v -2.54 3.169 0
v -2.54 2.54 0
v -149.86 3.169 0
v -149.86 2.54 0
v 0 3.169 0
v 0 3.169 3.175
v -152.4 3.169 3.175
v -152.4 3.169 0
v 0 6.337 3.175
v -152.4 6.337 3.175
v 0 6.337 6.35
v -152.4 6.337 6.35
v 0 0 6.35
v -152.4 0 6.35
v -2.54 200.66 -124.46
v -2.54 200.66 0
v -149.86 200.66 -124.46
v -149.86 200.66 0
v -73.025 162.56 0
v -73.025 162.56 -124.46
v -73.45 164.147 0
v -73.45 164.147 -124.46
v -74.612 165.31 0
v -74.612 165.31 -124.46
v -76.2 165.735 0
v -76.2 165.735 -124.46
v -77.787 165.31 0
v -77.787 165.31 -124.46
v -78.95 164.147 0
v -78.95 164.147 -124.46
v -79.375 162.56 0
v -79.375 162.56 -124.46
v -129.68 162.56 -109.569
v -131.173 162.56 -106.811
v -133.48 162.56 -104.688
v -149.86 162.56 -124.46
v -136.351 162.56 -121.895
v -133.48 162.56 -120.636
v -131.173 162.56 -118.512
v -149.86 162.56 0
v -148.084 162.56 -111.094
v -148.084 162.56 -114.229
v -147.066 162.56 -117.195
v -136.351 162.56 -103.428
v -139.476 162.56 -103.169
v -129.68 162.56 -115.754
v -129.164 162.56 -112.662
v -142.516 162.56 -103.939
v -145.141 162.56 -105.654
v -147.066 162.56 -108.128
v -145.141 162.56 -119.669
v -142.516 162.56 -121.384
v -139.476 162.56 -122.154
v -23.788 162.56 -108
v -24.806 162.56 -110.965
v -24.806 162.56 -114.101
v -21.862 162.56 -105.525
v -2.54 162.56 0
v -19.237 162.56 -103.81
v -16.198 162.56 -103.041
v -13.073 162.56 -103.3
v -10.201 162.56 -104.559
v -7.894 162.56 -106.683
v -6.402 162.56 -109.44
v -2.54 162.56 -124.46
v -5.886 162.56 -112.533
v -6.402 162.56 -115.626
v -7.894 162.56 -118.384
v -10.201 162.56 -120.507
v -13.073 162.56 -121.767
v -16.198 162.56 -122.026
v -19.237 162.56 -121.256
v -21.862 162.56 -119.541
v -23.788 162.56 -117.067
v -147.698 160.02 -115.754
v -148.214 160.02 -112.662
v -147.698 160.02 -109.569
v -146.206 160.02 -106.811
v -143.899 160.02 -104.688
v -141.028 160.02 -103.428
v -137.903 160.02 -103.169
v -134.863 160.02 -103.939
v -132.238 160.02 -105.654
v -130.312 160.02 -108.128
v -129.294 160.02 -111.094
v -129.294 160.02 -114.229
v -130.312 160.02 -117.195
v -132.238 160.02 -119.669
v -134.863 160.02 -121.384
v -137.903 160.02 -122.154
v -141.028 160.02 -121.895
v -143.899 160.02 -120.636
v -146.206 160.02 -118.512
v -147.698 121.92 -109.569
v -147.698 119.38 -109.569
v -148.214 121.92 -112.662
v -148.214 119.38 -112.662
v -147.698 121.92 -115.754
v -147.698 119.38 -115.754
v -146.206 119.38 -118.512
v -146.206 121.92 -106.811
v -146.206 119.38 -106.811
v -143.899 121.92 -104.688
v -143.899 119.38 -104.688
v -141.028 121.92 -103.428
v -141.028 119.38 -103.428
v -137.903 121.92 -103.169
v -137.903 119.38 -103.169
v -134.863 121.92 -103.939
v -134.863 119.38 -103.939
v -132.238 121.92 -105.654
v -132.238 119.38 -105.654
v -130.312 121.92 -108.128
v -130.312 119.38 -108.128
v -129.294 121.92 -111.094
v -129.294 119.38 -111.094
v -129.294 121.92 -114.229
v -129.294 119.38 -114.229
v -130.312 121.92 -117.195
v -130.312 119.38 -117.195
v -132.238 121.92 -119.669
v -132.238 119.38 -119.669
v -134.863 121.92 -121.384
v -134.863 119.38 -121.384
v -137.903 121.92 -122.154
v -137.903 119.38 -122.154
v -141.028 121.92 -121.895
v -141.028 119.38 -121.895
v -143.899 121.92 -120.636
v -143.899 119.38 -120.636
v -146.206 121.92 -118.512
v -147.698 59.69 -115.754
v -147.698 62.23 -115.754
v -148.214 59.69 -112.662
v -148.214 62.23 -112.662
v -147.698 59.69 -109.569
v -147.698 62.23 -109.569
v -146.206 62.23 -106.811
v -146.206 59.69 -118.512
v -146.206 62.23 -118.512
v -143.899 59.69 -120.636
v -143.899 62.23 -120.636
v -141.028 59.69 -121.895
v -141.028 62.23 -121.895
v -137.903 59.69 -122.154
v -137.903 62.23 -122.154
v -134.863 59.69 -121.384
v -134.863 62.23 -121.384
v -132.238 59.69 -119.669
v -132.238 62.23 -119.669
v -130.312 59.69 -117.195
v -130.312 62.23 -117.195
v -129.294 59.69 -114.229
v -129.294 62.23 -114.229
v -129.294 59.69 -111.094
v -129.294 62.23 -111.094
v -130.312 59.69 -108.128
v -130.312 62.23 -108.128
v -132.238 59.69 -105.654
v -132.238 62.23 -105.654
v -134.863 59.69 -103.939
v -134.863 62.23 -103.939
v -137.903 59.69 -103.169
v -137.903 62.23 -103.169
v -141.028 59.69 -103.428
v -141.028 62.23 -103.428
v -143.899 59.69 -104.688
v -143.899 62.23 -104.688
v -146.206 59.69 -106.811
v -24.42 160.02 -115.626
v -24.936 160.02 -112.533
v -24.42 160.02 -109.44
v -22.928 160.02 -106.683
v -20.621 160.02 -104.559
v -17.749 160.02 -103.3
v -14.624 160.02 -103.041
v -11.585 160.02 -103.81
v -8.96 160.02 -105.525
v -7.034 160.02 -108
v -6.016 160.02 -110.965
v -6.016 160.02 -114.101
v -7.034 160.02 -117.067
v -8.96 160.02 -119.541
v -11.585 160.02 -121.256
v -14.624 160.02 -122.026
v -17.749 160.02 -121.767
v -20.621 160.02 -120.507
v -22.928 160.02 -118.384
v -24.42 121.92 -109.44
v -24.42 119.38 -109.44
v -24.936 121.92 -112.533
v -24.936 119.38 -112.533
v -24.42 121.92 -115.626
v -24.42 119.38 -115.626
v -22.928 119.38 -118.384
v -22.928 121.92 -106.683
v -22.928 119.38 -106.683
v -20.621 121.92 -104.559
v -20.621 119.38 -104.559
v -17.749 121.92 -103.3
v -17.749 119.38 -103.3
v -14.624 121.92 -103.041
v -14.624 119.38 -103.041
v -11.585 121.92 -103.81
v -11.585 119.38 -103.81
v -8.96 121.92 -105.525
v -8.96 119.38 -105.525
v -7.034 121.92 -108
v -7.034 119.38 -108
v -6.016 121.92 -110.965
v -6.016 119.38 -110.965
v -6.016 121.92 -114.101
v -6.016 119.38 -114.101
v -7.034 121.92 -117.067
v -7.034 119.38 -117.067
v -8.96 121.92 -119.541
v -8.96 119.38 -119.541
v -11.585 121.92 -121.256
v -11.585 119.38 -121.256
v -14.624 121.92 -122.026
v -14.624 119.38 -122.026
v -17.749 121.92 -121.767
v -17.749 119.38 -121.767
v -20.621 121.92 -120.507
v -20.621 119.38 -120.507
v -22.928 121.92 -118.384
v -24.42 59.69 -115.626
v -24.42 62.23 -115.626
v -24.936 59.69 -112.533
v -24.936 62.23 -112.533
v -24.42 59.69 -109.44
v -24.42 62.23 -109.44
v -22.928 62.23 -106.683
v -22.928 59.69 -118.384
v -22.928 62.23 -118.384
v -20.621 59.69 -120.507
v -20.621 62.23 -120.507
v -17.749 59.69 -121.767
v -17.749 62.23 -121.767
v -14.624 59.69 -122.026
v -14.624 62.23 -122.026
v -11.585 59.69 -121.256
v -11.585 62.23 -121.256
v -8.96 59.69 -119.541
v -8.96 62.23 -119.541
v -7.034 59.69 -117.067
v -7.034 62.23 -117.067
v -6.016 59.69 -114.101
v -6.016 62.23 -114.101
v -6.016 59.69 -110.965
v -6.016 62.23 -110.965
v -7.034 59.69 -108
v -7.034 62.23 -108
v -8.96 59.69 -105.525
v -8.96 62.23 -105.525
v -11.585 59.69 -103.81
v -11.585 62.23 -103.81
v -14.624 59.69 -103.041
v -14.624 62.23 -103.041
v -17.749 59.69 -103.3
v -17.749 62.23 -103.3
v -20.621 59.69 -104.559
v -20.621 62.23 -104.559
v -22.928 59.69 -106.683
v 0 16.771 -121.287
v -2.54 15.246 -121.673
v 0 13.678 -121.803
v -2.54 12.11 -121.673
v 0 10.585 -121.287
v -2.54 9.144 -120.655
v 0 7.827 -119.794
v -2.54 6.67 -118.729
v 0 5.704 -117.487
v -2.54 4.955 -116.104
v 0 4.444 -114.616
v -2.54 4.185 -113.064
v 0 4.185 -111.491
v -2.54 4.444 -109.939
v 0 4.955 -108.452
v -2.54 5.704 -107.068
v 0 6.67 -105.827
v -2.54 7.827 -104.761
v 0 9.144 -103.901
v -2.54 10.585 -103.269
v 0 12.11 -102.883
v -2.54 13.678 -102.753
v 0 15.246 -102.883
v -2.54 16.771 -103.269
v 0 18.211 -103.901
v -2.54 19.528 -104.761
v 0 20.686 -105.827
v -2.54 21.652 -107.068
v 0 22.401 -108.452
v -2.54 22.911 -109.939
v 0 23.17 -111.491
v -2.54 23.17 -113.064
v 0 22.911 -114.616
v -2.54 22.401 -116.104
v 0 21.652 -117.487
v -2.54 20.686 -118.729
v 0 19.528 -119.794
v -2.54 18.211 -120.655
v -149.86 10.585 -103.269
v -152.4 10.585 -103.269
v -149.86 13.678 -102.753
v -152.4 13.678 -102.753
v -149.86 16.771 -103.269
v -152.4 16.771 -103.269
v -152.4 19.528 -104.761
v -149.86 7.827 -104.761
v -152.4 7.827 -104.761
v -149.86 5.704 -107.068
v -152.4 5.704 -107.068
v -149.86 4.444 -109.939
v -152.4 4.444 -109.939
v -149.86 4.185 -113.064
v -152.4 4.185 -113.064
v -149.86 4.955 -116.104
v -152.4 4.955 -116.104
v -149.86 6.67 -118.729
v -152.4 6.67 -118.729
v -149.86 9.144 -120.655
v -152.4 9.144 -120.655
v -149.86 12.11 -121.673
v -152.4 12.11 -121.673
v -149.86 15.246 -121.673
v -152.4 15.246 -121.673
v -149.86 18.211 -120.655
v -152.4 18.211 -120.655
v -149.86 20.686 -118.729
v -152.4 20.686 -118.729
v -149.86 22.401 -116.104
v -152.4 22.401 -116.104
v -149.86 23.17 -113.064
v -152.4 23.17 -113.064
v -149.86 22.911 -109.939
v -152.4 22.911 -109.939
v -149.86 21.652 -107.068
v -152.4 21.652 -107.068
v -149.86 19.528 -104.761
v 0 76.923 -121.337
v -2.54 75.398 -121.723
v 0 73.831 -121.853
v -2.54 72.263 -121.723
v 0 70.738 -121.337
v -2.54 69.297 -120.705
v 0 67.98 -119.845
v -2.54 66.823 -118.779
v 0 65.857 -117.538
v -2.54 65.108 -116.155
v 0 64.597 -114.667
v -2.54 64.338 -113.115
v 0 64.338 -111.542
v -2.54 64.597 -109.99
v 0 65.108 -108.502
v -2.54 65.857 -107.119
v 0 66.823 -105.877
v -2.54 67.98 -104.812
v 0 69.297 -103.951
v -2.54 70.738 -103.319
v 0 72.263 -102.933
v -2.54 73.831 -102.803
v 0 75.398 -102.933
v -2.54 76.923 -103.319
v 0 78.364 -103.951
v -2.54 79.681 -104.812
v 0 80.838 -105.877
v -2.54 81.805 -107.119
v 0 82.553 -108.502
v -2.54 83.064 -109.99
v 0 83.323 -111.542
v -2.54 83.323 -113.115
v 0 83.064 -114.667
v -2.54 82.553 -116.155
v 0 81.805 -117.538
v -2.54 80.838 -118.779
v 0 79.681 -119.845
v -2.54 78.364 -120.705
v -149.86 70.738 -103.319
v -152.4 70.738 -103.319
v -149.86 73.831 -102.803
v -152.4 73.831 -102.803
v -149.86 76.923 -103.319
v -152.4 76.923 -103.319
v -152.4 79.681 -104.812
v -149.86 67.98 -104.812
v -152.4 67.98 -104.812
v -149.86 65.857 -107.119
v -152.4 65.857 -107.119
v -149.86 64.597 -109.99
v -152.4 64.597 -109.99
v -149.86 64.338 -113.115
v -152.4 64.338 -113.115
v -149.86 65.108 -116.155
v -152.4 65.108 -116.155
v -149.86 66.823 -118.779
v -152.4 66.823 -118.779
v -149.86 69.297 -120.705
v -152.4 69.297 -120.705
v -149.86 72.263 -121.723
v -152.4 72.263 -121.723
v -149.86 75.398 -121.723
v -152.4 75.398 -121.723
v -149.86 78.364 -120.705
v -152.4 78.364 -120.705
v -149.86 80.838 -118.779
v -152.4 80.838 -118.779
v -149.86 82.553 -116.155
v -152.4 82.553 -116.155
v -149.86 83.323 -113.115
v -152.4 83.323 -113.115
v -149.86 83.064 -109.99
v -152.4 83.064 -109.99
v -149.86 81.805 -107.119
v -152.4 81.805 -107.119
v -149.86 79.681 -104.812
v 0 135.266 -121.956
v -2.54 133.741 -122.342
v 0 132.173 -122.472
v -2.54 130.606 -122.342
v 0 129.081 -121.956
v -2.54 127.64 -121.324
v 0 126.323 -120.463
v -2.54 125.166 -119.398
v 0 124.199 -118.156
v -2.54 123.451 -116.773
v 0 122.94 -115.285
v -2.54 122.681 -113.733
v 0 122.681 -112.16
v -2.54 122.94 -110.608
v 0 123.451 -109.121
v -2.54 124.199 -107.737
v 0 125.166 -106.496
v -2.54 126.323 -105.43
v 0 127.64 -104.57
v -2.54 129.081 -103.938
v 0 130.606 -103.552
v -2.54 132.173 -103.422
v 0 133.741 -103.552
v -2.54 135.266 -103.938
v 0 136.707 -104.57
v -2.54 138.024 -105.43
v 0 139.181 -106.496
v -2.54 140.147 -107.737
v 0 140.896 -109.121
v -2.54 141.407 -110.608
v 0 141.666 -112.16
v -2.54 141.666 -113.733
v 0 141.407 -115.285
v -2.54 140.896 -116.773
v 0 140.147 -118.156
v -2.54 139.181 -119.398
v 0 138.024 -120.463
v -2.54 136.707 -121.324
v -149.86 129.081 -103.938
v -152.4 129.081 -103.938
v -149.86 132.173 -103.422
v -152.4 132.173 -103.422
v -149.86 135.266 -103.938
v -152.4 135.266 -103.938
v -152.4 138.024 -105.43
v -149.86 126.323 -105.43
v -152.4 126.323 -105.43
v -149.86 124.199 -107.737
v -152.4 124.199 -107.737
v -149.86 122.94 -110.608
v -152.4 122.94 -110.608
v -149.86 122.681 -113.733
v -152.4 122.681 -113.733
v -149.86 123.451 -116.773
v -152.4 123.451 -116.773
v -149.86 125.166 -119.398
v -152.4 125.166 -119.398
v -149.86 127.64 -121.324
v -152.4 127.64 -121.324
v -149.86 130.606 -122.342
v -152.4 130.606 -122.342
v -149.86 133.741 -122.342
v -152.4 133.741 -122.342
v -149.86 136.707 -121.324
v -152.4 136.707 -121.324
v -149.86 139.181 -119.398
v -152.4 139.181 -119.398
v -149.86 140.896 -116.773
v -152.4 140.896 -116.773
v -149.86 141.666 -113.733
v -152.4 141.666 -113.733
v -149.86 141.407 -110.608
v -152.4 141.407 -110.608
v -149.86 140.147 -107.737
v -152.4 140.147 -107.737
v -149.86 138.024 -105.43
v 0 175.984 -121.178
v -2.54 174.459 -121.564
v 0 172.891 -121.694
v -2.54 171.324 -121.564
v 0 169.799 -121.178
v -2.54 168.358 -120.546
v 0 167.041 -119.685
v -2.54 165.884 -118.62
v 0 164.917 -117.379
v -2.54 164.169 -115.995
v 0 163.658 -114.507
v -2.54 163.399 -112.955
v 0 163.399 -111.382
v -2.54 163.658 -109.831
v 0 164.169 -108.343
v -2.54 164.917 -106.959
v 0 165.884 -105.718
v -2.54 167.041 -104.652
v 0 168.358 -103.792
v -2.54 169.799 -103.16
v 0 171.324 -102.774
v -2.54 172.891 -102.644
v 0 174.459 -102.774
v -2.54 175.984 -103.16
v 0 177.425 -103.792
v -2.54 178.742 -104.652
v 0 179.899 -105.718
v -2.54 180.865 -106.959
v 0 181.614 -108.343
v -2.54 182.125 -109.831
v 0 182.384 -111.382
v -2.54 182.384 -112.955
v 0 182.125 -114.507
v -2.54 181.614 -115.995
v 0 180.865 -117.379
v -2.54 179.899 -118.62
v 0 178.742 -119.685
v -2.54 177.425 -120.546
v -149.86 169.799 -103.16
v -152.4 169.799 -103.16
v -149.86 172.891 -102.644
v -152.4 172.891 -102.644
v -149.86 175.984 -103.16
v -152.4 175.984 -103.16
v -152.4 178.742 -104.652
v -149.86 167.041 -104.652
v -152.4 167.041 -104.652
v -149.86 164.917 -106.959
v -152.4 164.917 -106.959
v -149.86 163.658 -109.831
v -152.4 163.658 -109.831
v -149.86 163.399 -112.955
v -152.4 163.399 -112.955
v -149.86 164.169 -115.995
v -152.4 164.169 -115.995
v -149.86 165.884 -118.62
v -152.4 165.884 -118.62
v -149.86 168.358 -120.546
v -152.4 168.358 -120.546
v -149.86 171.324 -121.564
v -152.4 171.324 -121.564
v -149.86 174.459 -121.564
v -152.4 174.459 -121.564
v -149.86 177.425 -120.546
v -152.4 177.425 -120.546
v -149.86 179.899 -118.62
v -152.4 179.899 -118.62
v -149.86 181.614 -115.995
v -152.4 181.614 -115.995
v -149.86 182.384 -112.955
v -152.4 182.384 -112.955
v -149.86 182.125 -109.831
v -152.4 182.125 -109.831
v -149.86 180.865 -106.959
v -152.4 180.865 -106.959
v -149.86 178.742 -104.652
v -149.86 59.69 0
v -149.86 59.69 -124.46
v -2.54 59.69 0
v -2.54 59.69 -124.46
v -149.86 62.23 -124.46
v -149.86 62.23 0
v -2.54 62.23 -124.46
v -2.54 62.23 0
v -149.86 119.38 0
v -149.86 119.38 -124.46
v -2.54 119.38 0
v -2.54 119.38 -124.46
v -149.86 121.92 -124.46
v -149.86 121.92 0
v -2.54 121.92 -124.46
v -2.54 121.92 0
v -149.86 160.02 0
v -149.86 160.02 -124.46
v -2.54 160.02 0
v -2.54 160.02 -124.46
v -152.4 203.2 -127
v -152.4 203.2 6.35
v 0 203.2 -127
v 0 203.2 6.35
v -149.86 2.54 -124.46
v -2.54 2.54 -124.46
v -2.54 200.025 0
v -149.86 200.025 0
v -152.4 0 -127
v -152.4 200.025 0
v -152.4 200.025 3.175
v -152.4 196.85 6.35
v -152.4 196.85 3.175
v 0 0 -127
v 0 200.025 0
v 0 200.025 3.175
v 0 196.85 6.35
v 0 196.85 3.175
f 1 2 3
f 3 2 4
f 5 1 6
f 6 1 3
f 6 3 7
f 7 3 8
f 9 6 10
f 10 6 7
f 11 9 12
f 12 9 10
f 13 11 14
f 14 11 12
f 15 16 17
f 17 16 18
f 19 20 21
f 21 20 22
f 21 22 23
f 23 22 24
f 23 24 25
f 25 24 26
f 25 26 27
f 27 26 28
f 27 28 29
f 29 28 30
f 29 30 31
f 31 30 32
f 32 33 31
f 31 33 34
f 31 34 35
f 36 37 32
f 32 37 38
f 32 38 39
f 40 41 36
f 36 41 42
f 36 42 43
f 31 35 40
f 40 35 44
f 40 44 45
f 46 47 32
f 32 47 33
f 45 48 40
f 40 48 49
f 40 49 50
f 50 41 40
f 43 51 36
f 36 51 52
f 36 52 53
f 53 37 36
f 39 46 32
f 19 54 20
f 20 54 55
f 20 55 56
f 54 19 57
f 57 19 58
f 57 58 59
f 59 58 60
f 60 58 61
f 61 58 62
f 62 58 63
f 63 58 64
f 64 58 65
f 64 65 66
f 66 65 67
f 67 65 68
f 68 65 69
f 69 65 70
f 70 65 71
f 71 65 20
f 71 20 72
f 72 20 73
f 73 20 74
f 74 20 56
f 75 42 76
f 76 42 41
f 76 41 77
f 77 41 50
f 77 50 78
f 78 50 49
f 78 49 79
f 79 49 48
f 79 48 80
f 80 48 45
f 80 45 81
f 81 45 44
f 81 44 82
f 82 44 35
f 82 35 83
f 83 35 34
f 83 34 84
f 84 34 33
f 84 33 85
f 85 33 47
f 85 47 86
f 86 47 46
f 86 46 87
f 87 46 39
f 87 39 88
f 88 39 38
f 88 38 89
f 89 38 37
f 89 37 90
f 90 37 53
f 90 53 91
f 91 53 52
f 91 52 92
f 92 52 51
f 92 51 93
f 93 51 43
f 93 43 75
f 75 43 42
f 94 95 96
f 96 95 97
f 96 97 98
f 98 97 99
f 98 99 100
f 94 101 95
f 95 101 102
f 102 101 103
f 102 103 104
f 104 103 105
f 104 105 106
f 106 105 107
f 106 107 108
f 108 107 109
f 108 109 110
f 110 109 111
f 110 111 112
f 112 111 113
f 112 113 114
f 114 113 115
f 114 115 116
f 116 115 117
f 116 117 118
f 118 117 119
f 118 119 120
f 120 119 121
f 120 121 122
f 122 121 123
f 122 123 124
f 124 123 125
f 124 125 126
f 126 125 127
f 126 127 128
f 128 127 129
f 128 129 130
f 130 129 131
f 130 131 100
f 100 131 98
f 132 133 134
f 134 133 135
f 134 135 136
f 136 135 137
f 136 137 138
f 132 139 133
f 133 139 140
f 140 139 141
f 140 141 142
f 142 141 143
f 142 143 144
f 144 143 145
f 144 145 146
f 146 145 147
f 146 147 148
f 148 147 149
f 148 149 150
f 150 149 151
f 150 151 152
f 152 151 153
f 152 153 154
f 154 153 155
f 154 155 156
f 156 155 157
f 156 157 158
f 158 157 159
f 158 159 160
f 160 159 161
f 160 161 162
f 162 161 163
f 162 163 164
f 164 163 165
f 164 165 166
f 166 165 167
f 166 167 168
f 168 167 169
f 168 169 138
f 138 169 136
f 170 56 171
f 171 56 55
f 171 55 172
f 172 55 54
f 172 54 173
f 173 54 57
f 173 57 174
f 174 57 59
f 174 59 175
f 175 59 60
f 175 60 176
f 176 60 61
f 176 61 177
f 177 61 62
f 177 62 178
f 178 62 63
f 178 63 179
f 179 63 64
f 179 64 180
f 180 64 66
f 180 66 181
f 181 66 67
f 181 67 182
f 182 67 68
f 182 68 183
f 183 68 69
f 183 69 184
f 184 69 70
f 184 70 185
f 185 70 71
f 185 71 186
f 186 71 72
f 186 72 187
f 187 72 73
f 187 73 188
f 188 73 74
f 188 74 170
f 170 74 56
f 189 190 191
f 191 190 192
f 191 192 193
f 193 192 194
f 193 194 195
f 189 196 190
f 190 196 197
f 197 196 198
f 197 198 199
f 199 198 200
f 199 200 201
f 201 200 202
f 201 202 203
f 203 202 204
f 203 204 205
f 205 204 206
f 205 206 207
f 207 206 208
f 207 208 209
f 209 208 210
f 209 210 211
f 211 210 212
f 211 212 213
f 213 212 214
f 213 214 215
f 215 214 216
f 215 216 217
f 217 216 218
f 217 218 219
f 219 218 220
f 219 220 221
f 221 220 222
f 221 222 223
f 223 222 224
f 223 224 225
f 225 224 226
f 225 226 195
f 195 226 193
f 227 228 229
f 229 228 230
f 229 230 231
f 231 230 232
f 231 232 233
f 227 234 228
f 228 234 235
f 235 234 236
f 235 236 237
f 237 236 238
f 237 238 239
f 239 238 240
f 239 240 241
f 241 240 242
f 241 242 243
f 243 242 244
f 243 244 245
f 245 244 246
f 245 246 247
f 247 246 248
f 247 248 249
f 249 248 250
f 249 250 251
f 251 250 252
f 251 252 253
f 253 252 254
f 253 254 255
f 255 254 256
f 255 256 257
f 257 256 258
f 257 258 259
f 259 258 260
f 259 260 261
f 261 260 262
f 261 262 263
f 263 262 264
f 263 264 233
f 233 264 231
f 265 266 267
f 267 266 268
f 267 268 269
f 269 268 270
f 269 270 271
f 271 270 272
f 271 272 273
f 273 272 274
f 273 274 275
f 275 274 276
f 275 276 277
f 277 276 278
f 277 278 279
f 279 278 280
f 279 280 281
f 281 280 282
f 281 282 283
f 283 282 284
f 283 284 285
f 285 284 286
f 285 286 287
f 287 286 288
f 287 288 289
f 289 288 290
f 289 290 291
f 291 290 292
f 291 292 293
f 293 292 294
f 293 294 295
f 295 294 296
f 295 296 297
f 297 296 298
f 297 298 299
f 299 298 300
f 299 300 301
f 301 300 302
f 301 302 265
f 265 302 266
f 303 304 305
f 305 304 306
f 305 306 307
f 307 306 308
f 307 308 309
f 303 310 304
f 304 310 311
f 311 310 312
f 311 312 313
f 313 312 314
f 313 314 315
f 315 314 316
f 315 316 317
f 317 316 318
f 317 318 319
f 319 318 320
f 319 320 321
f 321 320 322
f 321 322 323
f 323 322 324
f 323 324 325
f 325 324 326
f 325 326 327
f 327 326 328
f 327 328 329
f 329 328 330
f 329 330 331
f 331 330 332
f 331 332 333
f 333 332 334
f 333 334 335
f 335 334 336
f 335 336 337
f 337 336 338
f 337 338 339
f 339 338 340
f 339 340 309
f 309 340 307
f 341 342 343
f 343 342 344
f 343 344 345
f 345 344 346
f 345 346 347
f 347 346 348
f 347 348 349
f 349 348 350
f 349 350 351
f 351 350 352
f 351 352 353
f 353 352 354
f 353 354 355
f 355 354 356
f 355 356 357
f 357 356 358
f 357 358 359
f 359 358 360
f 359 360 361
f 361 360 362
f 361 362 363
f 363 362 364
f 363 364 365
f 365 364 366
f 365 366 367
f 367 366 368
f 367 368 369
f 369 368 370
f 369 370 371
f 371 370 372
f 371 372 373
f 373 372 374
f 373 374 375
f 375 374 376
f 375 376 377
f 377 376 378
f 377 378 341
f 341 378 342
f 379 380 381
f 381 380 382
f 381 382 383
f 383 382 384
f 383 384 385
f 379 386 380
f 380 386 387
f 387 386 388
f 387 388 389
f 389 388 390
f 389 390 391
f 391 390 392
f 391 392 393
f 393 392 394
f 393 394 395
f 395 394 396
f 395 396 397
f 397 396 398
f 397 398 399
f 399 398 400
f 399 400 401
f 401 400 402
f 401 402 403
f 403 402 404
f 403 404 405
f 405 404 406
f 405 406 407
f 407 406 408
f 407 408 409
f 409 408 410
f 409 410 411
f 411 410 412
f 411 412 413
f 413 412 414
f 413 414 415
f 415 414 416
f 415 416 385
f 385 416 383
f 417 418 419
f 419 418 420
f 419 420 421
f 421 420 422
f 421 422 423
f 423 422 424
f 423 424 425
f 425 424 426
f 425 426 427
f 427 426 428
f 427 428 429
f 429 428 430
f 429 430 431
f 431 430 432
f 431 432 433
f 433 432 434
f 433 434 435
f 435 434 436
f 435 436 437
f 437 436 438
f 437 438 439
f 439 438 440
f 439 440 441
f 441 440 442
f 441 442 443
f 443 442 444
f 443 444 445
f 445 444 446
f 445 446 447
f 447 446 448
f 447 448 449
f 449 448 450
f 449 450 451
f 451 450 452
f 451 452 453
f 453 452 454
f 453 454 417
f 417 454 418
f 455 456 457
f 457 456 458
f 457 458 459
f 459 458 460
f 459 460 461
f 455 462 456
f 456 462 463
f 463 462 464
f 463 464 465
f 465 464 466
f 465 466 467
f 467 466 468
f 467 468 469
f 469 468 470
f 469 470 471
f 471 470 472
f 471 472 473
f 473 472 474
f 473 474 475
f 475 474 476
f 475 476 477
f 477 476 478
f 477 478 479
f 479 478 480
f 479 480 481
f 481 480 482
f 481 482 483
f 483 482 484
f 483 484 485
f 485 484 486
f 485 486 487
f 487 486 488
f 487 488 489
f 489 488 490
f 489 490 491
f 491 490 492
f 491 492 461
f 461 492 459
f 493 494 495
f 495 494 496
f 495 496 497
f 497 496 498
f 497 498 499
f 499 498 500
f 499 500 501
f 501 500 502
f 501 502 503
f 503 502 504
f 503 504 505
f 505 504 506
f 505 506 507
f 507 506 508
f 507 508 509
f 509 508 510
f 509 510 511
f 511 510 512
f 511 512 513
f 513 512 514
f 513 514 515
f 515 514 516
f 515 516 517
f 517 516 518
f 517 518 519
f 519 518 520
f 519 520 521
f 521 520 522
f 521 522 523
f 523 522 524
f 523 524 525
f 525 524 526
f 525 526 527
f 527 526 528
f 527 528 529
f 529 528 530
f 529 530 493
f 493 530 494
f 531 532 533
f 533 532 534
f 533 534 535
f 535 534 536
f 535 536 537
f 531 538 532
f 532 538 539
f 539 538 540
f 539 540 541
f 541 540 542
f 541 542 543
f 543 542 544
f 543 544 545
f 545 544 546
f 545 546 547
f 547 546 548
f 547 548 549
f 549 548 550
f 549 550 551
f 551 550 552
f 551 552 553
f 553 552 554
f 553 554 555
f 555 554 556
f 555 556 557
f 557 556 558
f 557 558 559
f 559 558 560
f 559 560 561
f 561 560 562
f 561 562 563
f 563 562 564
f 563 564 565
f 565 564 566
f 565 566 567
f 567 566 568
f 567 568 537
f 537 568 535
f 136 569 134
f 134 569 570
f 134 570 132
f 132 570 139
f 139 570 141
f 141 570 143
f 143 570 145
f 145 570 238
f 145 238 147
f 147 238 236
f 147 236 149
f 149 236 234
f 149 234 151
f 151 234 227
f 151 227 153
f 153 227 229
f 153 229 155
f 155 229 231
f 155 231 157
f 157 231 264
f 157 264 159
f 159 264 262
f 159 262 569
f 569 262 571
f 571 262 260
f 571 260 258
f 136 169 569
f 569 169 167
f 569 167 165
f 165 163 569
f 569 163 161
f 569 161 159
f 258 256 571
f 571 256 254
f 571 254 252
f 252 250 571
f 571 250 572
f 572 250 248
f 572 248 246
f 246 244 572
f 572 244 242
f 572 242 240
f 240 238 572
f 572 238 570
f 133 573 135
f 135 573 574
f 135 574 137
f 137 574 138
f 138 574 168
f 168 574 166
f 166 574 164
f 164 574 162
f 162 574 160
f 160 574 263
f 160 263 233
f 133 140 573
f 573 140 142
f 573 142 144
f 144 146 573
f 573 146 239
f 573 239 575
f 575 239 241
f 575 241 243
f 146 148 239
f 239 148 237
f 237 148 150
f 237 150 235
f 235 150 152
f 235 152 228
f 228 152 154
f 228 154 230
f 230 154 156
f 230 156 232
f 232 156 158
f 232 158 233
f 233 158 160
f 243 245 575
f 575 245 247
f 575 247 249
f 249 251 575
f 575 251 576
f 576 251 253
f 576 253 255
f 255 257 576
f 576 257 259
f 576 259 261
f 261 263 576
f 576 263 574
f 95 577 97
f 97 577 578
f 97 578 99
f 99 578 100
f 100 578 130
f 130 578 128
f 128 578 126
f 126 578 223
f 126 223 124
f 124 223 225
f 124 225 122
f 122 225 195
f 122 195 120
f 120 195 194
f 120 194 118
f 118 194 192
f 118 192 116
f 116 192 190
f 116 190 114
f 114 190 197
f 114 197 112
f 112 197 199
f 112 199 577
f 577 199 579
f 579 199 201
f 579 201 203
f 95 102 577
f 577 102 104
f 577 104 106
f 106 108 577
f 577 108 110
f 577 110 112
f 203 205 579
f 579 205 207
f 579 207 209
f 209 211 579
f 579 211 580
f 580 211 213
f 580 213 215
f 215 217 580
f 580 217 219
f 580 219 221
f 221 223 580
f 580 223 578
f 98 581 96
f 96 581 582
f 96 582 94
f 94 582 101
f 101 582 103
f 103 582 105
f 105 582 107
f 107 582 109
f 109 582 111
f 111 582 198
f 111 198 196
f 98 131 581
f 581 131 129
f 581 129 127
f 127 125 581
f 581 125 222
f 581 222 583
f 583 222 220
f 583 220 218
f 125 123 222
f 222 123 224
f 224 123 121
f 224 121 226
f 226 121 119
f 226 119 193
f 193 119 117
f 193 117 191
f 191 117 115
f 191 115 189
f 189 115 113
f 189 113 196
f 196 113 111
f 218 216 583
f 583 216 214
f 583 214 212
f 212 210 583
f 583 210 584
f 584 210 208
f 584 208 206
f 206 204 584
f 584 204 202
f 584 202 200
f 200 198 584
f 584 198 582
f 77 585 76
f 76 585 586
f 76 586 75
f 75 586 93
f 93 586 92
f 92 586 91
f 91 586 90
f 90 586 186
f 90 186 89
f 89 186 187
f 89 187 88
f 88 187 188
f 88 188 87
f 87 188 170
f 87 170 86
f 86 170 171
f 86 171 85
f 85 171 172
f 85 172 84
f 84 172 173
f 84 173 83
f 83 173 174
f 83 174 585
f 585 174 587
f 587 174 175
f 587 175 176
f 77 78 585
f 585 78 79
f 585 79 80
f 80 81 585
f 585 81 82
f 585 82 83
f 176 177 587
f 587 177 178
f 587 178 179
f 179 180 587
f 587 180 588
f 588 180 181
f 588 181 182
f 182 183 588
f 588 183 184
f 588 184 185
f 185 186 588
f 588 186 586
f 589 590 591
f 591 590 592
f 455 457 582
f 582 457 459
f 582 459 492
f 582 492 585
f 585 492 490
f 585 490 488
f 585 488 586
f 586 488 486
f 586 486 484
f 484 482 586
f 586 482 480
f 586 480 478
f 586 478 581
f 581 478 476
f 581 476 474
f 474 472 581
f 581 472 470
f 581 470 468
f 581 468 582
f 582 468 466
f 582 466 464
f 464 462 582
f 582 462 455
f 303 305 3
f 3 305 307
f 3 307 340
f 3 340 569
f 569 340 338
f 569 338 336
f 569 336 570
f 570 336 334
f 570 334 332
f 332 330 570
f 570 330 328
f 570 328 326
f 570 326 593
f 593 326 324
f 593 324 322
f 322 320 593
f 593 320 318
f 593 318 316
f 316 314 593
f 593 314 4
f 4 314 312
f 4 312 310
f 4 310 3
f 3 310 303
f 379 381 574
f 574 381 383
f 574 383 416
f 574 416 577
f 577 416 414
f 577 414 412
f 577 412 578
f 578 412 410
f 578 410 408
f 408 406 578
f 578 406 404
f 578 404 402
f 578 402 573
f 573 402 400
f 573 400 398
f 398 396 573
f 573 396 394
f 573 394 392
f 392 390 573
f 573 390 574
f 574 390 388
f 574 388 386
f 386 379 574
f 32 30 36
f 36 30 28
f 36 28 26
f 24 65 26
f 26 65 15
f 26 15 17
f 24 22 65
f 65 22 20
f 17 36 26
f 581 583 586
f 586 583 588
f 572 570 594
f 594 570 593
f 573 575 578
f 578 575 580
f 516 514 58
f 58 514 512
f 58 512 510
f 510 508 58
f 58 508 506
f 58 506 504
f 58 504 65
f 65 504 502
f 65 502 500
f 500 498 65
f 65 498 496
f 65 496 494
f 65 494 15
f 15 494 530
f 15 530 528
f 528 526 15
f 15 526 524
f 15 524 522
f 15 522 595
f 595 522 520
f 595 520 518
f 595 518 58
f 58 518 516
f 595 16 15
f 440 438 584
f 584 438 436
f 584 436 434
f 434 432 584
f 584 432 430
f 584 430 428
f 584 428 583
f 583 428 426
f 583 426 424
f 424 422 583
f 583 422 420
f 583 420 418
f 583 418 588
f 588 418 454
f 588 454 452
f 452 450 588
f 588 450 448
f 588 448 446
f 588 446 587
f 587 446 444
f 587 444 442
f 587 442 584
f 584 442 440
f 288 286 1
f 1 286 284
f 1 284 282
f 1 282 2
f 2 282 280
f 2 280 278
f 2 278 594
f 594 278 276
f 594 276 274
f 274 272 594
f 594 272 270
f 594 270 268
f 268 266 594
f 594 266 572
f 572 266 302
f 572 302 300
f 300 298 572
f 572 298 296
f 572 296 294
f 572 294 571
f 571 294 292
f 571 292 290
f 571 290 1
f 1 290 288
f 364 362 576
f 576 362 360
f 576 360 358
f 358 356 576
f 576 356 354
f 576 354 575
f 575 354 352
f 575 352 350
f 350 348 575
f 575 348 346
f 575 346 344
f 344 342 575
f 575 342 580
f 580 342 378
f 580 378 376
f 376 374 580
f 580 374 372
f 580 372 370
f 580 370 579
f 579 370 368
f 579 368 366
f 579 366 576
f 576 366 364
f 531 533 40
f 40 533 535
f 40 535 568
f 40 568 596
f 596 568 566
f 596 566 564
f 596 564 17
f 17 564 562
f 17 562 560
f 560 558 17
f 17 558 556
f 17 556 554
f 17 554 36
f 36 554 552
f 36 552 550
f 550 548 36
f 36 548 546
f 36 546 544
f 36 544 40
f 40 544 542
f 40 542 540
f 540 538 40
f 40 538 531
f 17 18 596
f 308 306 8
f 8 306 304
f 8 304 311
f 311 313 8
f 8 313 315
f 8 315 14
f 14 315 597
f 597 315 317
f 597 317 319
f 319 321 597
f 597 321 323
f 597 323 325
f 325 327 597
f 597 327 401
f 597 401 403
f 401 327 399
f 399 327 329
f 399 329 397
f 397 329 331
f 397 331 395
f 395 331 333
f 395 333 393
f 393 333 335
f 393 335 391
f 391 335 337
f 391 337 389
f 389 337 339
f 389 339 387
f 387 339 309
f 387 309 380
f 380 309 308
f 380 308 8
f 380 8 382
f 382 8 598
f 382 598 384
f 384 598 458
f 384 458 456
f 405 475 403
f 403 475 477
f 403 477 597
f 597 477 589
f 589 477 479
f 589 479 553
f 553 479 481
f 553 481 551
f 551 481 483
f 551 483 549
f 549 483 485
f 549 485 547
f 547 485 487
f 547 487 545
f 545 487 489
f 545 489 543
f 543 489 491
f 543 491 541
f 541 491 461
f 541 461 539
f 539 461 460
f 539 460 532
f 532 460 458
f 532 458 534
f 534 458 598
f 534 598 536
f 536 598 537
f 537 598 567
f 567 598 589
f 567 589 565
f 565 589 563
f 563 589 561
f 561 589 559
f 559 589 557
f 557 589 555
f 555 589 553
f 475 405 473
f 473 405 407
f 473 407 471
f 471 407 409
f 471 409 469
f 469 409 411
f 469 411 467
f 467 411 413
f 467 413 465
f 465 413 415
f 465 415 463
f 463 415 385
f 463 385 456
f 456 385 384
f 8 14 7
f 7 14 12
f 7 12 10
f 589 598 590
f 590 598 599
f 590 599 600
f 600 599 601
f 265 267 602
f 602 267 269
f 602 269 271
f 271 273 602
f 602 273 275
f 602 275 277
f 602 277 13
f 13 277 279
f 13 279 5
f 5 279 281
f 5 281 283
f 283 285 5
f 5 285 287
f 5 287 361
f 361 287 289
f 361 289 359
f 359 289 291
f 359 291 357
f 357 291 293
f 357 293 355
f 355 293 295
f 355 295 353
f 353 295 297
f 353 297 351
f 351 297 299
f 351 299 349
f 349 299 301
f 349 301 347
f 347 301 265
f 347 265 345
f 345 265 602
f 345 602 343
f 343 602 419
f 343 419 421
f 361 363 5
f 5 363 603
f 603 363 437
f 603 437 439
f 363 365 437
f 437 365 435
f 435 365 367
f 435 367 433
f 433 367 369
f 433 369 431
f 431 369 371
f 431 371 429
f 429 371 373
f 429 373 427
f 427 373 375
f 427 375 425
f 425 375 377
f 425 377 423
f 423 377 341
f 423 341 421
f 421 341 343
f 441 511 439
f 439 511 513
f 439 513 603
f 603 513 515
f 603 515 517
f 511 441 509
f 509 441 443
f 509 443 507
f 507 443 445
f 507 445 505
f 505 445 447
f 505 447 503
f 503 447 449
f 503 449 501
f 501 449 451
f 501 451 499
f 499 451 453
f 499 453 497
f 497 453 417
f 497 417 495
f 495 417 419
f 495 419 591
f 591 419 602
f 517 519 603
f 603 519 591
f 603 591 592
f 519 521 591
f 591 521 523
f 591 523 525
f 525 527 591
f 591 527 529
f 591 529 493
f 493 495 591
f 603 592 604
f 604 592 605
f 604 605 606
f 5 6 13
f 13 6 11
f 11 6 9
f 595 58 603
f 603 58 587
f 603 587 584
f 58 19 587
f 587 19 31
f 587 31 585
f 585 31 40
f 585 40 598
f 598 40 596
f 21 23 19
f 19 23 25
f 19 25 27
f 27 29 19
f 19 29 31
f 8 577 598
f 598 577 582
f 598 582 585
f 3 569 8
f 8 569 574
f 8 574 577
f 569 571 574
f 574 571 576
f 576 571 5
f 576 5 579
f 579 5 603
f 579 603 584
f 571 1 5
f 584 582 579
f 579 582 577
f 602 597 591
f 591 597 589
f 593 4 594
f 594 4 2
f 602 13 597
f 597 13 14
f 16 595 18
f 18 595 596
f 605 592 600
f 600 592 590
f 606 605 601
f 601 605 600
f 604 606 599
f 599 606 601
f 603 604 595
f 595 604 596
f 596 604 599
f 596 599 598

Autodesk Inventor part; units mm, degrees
ref_plane "YZ Plane" through (0, 0, 0) normal (1, 0, 0) x (0, 1, 0)
ref_plane "XZ Plane" through (0, 0, 0) normal (0, 1, 0) x (-1, 0, 0)
ref_plane "XY Plane" through (0, 0, 0) normal (0, 0, 1) x (1, 0, 0)
sketch "Sketch2" plane through (0, 0, 0) normal (0, 1, 0) x (-1, 0, 0)
  line L0 (0, 0) -> (152.4, 0)
  line L1 (152.4, 0) -> (152.4, -127)
  line L2 (152.4, -127) -> (0, -127)
  line L3 (0, -127) -> (0, 0)
  dimension "d2" = 152.4
  dimension "d3" = 127
extrude "Extrusion1" add sketch "Sketch2" along normal blind 2.54
sketch "Sketch3" plane through (0, 0, 0) normal (1, 0, 0) x (0, 0, -1)
  line L0 (127, 2.54) -> (0, 2.54) projected
  line L1 (0, 2.54) -> (127, 2.54)
  line L2 (127, 2.54) -> (127, 203.2)
  line L3 (127, 203.2) -> (0, 203.2)
  line L4 (0, 203.2) -> (0, 2.54)
  point P0 (0, 0)
  dimension "d6" = 127
  dimension "d7" = 200.66
extrude "Extrusion2" add sketch "Sketch3" against normal blind 2.54
sketch "Sketch4" plane through (-152.4, 0, -127) normal (-1, 0, 0) x (0, 0, 1)
  line L0 (0, 2.54) -> (127, 2.54) projected
  line L1 (127, 0) -> (127, 203.2) projected
  line L2 (0, 2.54) -> (127, 2.54)
  line L3 (127, 2.54) -> (127, 203.2)
  line L4 (127, 203.2) -> (0, 203.2)
  line L5 (0, 203.2) -> (0, 2.54)
extrude "Extrusion3" add sketch "Sketch4" against normal blind 2.54
sketch "Sketch5" plane through (0, 0, -127) normal (0, 0, -1) x (-1, 0, 0)
  line L0 (2.54, 2.54) -> (2.54, 203.2) projected
  line L1 (152.4, 203.2) -> (149.86, 203.2) projected
  line L2 (2.54, 2.54) -> (149.86, 2.54)
  line L3 (149.86, 2.54) -> (149.86, 203.2)
  line L4 (149.86, 203.2) -> (2.54, 203.2)
  line L5 (2.54, 203.2) -> (2.54, 2.54)
  point P0 (0, 0)
extrude "Extrusion4" add sketch "Sketch5" against normal blind 2.54
sketch "Sketch6" plane through (-152.4, 203.2, 0) normal (0, 1, 0) x (1, 0, 0)
  line L0 (0, 0) -> (2.54, 0) projected
  line L1 (149.86, 124.46) -> (2.54, 124.46) projected
  line L2 (2.54, 0) -> (149.86, 0)
  line L3 (149.86, 0) -> (149.86, 124.46)
  line L4 (149.86, 124.46) -> (2.54, 124.46)
  line L5 (2.54, 124.46) -> (2.54, 0)
  point P0 (152.4, 0)
extrude "Extrusion5" add sketch "Sketch6" against normal blind 2.54
sketch "Sketch7" plane through (-152.4, 0, 0) normal (0, 0, 1) x (1, 0, 0)
  line L0 (2.54, 200.66) -> (2.54, 2.54) projected
  line L1 (149.86, 200.66) -> (149.86, 2.54) projected
  line L2 (2.54, 59.69) -> (149.86, 59.69)
  line L3 (149.86, 59.69) -> (149.86, 62.23)
  line L4 (149.86, 62.23) -> (2.54, 62.23)
  line L5 (2.54, 62.23) -> (2.54, 59.69)
  line L6 (2.54, 119.38) -> (149.86, 119.38)
  line L7 (149.86, 119.38) -> (149.86, 121.92)
  line L8 (149.86, 121.92) -> (2.54, 121.92)
  line L9 (2.54, 121.92) -> (2.54, 119.38)
  line L10 (2.54, 160.02) -> (149.86, 160.02)
  line L11 (149.86, 160.02) -> (149.86, 162.56)
  line L12 (149.86, 162.56) -> (2.54, 162.56)
  line L13 (2.54, 162.56) -> (2.54, 160.02)
  dimension "d21" = 2.54
  dimension "d22" = 2.54
  dimension "d23" = 2.54
extrude "Extrusion6" add sketch "Sketch7" against normal blind 126.365 contours L12 L1 L10 L0 | L8 L1 L6 L0 | L4 L1 L2 L0
sketch "Sketch8" plane through (0, 0, 0) normal (1, 0, 0) x (0, 0, -1)
  point P0 (0, 0)
  point P1 (112.1689, 172.8914)
  point P2 (112.9467, 132.1734)
  point P3 (112.3284, 73.8307)
  point P4 (112.2777, 13.6778)
hole "Hole1" at (0, 172.8914, -112.1689) at (0, 132.1734, -112.9467) at (0, 73.8307, -112.3284) at (0, 13.6778, -112.2777) direction (-1, 0, 0) diameter 19.05 depth 201.6125 tip angle 126
sketch "Sketch9" plane through (-149.86, 162.56, 0) normal (0, 1, 0) x (1, 0, 0)
  point P0 (149.86, 0)
  point P1 (11.1706, 112.6616)
  point P2 (134.449, 112.5332)
hole "Hole2" at (-15.411, 162.56, -112.5332) at (-138.6894, 162.56, -112.6616) direction (0, -1, 0) diameter 19.05 depth 149.225 tip angle 126
sketch "Sketch10" plane through (-152.4, 0, 0) normal (0, 0, 1) x (1, 0, 0)
  line L0 (149.86, 162.56) -> (2.54, 162.56) projected
  arc A0 (79.375, 162.56) -> (73.025, 162.56) centre (76.2, 162.56) ccw
  point P0 (152.4, 0)
  dimension "d40" = 6.35
extrude "Extrusion7" add sketch "Sketch10" against normal blind 126.365
sketch "Sketch11" plane through (0, 0, 0) normal (1, 0, 0) x (0, 0, -1)
  line L0 (0, 0) -> (127, 0) projected
  line L1 (0, 0) -> (-6.35, 0)
  line L2 (-6.35, 0) -> (-6.35, 6.3374)
  line L3 (-6.35, 6.3374) -> (-3.175, 6.3374)
  line L4 (0, 6.3374) -> (0, 0)
  line L5 (0, 6.3374) -> (-3.175, 6.3374)
  line L6 (-3.175, 6.3374) -> (-3.175, 3.1687)
  line L7 (-3.175, 3.1687) -> (0, 3.1687)
  line L8 (0, 3.1687) -> (0, 6.3374)
  dimension "d43" = 6.35
extrude "Extrusion8" add sketch "Sketch11" against normal blind 152.4 contours L1 L2 L3 L6 L7 L4
sketch "Sketch13" plane through (0, 203.2, 0) normal (1, 0, 0) x (0, 0, -1)
  line L0 (0, -200.0313) -> (0, 0) projected
  line L1 (0, 0) -> (-6.35, 0)
  line L2 (-6.35, 0) -> (-6.35, -6.35)
  line L3 (-6.35, -6.35) -> (-3.175, -6.35)
  line L4 (0, -6.35) -> (0, 0)
  line L5 (0, -6.35) -> (-3.175, -6.35)
  line L6 (-3.175, -6.35) -> (-3.175, -3.175)
  line L7 (-3.175, -3.175) -> (0, -3.175)
  line L8 (0, -3.175) -> (0, -6.35)
  point P0 (0, -203.2)
  point P1 (0, -3.175)
  dimension "d50" = 6.35
  dimension "d51" = 6.35
extrude "Extrusion10" add sketch "Sketch13" against normal blind 152.4 contours L7 L6 L3 L2 L1 L0
properties part number "Shelf"
